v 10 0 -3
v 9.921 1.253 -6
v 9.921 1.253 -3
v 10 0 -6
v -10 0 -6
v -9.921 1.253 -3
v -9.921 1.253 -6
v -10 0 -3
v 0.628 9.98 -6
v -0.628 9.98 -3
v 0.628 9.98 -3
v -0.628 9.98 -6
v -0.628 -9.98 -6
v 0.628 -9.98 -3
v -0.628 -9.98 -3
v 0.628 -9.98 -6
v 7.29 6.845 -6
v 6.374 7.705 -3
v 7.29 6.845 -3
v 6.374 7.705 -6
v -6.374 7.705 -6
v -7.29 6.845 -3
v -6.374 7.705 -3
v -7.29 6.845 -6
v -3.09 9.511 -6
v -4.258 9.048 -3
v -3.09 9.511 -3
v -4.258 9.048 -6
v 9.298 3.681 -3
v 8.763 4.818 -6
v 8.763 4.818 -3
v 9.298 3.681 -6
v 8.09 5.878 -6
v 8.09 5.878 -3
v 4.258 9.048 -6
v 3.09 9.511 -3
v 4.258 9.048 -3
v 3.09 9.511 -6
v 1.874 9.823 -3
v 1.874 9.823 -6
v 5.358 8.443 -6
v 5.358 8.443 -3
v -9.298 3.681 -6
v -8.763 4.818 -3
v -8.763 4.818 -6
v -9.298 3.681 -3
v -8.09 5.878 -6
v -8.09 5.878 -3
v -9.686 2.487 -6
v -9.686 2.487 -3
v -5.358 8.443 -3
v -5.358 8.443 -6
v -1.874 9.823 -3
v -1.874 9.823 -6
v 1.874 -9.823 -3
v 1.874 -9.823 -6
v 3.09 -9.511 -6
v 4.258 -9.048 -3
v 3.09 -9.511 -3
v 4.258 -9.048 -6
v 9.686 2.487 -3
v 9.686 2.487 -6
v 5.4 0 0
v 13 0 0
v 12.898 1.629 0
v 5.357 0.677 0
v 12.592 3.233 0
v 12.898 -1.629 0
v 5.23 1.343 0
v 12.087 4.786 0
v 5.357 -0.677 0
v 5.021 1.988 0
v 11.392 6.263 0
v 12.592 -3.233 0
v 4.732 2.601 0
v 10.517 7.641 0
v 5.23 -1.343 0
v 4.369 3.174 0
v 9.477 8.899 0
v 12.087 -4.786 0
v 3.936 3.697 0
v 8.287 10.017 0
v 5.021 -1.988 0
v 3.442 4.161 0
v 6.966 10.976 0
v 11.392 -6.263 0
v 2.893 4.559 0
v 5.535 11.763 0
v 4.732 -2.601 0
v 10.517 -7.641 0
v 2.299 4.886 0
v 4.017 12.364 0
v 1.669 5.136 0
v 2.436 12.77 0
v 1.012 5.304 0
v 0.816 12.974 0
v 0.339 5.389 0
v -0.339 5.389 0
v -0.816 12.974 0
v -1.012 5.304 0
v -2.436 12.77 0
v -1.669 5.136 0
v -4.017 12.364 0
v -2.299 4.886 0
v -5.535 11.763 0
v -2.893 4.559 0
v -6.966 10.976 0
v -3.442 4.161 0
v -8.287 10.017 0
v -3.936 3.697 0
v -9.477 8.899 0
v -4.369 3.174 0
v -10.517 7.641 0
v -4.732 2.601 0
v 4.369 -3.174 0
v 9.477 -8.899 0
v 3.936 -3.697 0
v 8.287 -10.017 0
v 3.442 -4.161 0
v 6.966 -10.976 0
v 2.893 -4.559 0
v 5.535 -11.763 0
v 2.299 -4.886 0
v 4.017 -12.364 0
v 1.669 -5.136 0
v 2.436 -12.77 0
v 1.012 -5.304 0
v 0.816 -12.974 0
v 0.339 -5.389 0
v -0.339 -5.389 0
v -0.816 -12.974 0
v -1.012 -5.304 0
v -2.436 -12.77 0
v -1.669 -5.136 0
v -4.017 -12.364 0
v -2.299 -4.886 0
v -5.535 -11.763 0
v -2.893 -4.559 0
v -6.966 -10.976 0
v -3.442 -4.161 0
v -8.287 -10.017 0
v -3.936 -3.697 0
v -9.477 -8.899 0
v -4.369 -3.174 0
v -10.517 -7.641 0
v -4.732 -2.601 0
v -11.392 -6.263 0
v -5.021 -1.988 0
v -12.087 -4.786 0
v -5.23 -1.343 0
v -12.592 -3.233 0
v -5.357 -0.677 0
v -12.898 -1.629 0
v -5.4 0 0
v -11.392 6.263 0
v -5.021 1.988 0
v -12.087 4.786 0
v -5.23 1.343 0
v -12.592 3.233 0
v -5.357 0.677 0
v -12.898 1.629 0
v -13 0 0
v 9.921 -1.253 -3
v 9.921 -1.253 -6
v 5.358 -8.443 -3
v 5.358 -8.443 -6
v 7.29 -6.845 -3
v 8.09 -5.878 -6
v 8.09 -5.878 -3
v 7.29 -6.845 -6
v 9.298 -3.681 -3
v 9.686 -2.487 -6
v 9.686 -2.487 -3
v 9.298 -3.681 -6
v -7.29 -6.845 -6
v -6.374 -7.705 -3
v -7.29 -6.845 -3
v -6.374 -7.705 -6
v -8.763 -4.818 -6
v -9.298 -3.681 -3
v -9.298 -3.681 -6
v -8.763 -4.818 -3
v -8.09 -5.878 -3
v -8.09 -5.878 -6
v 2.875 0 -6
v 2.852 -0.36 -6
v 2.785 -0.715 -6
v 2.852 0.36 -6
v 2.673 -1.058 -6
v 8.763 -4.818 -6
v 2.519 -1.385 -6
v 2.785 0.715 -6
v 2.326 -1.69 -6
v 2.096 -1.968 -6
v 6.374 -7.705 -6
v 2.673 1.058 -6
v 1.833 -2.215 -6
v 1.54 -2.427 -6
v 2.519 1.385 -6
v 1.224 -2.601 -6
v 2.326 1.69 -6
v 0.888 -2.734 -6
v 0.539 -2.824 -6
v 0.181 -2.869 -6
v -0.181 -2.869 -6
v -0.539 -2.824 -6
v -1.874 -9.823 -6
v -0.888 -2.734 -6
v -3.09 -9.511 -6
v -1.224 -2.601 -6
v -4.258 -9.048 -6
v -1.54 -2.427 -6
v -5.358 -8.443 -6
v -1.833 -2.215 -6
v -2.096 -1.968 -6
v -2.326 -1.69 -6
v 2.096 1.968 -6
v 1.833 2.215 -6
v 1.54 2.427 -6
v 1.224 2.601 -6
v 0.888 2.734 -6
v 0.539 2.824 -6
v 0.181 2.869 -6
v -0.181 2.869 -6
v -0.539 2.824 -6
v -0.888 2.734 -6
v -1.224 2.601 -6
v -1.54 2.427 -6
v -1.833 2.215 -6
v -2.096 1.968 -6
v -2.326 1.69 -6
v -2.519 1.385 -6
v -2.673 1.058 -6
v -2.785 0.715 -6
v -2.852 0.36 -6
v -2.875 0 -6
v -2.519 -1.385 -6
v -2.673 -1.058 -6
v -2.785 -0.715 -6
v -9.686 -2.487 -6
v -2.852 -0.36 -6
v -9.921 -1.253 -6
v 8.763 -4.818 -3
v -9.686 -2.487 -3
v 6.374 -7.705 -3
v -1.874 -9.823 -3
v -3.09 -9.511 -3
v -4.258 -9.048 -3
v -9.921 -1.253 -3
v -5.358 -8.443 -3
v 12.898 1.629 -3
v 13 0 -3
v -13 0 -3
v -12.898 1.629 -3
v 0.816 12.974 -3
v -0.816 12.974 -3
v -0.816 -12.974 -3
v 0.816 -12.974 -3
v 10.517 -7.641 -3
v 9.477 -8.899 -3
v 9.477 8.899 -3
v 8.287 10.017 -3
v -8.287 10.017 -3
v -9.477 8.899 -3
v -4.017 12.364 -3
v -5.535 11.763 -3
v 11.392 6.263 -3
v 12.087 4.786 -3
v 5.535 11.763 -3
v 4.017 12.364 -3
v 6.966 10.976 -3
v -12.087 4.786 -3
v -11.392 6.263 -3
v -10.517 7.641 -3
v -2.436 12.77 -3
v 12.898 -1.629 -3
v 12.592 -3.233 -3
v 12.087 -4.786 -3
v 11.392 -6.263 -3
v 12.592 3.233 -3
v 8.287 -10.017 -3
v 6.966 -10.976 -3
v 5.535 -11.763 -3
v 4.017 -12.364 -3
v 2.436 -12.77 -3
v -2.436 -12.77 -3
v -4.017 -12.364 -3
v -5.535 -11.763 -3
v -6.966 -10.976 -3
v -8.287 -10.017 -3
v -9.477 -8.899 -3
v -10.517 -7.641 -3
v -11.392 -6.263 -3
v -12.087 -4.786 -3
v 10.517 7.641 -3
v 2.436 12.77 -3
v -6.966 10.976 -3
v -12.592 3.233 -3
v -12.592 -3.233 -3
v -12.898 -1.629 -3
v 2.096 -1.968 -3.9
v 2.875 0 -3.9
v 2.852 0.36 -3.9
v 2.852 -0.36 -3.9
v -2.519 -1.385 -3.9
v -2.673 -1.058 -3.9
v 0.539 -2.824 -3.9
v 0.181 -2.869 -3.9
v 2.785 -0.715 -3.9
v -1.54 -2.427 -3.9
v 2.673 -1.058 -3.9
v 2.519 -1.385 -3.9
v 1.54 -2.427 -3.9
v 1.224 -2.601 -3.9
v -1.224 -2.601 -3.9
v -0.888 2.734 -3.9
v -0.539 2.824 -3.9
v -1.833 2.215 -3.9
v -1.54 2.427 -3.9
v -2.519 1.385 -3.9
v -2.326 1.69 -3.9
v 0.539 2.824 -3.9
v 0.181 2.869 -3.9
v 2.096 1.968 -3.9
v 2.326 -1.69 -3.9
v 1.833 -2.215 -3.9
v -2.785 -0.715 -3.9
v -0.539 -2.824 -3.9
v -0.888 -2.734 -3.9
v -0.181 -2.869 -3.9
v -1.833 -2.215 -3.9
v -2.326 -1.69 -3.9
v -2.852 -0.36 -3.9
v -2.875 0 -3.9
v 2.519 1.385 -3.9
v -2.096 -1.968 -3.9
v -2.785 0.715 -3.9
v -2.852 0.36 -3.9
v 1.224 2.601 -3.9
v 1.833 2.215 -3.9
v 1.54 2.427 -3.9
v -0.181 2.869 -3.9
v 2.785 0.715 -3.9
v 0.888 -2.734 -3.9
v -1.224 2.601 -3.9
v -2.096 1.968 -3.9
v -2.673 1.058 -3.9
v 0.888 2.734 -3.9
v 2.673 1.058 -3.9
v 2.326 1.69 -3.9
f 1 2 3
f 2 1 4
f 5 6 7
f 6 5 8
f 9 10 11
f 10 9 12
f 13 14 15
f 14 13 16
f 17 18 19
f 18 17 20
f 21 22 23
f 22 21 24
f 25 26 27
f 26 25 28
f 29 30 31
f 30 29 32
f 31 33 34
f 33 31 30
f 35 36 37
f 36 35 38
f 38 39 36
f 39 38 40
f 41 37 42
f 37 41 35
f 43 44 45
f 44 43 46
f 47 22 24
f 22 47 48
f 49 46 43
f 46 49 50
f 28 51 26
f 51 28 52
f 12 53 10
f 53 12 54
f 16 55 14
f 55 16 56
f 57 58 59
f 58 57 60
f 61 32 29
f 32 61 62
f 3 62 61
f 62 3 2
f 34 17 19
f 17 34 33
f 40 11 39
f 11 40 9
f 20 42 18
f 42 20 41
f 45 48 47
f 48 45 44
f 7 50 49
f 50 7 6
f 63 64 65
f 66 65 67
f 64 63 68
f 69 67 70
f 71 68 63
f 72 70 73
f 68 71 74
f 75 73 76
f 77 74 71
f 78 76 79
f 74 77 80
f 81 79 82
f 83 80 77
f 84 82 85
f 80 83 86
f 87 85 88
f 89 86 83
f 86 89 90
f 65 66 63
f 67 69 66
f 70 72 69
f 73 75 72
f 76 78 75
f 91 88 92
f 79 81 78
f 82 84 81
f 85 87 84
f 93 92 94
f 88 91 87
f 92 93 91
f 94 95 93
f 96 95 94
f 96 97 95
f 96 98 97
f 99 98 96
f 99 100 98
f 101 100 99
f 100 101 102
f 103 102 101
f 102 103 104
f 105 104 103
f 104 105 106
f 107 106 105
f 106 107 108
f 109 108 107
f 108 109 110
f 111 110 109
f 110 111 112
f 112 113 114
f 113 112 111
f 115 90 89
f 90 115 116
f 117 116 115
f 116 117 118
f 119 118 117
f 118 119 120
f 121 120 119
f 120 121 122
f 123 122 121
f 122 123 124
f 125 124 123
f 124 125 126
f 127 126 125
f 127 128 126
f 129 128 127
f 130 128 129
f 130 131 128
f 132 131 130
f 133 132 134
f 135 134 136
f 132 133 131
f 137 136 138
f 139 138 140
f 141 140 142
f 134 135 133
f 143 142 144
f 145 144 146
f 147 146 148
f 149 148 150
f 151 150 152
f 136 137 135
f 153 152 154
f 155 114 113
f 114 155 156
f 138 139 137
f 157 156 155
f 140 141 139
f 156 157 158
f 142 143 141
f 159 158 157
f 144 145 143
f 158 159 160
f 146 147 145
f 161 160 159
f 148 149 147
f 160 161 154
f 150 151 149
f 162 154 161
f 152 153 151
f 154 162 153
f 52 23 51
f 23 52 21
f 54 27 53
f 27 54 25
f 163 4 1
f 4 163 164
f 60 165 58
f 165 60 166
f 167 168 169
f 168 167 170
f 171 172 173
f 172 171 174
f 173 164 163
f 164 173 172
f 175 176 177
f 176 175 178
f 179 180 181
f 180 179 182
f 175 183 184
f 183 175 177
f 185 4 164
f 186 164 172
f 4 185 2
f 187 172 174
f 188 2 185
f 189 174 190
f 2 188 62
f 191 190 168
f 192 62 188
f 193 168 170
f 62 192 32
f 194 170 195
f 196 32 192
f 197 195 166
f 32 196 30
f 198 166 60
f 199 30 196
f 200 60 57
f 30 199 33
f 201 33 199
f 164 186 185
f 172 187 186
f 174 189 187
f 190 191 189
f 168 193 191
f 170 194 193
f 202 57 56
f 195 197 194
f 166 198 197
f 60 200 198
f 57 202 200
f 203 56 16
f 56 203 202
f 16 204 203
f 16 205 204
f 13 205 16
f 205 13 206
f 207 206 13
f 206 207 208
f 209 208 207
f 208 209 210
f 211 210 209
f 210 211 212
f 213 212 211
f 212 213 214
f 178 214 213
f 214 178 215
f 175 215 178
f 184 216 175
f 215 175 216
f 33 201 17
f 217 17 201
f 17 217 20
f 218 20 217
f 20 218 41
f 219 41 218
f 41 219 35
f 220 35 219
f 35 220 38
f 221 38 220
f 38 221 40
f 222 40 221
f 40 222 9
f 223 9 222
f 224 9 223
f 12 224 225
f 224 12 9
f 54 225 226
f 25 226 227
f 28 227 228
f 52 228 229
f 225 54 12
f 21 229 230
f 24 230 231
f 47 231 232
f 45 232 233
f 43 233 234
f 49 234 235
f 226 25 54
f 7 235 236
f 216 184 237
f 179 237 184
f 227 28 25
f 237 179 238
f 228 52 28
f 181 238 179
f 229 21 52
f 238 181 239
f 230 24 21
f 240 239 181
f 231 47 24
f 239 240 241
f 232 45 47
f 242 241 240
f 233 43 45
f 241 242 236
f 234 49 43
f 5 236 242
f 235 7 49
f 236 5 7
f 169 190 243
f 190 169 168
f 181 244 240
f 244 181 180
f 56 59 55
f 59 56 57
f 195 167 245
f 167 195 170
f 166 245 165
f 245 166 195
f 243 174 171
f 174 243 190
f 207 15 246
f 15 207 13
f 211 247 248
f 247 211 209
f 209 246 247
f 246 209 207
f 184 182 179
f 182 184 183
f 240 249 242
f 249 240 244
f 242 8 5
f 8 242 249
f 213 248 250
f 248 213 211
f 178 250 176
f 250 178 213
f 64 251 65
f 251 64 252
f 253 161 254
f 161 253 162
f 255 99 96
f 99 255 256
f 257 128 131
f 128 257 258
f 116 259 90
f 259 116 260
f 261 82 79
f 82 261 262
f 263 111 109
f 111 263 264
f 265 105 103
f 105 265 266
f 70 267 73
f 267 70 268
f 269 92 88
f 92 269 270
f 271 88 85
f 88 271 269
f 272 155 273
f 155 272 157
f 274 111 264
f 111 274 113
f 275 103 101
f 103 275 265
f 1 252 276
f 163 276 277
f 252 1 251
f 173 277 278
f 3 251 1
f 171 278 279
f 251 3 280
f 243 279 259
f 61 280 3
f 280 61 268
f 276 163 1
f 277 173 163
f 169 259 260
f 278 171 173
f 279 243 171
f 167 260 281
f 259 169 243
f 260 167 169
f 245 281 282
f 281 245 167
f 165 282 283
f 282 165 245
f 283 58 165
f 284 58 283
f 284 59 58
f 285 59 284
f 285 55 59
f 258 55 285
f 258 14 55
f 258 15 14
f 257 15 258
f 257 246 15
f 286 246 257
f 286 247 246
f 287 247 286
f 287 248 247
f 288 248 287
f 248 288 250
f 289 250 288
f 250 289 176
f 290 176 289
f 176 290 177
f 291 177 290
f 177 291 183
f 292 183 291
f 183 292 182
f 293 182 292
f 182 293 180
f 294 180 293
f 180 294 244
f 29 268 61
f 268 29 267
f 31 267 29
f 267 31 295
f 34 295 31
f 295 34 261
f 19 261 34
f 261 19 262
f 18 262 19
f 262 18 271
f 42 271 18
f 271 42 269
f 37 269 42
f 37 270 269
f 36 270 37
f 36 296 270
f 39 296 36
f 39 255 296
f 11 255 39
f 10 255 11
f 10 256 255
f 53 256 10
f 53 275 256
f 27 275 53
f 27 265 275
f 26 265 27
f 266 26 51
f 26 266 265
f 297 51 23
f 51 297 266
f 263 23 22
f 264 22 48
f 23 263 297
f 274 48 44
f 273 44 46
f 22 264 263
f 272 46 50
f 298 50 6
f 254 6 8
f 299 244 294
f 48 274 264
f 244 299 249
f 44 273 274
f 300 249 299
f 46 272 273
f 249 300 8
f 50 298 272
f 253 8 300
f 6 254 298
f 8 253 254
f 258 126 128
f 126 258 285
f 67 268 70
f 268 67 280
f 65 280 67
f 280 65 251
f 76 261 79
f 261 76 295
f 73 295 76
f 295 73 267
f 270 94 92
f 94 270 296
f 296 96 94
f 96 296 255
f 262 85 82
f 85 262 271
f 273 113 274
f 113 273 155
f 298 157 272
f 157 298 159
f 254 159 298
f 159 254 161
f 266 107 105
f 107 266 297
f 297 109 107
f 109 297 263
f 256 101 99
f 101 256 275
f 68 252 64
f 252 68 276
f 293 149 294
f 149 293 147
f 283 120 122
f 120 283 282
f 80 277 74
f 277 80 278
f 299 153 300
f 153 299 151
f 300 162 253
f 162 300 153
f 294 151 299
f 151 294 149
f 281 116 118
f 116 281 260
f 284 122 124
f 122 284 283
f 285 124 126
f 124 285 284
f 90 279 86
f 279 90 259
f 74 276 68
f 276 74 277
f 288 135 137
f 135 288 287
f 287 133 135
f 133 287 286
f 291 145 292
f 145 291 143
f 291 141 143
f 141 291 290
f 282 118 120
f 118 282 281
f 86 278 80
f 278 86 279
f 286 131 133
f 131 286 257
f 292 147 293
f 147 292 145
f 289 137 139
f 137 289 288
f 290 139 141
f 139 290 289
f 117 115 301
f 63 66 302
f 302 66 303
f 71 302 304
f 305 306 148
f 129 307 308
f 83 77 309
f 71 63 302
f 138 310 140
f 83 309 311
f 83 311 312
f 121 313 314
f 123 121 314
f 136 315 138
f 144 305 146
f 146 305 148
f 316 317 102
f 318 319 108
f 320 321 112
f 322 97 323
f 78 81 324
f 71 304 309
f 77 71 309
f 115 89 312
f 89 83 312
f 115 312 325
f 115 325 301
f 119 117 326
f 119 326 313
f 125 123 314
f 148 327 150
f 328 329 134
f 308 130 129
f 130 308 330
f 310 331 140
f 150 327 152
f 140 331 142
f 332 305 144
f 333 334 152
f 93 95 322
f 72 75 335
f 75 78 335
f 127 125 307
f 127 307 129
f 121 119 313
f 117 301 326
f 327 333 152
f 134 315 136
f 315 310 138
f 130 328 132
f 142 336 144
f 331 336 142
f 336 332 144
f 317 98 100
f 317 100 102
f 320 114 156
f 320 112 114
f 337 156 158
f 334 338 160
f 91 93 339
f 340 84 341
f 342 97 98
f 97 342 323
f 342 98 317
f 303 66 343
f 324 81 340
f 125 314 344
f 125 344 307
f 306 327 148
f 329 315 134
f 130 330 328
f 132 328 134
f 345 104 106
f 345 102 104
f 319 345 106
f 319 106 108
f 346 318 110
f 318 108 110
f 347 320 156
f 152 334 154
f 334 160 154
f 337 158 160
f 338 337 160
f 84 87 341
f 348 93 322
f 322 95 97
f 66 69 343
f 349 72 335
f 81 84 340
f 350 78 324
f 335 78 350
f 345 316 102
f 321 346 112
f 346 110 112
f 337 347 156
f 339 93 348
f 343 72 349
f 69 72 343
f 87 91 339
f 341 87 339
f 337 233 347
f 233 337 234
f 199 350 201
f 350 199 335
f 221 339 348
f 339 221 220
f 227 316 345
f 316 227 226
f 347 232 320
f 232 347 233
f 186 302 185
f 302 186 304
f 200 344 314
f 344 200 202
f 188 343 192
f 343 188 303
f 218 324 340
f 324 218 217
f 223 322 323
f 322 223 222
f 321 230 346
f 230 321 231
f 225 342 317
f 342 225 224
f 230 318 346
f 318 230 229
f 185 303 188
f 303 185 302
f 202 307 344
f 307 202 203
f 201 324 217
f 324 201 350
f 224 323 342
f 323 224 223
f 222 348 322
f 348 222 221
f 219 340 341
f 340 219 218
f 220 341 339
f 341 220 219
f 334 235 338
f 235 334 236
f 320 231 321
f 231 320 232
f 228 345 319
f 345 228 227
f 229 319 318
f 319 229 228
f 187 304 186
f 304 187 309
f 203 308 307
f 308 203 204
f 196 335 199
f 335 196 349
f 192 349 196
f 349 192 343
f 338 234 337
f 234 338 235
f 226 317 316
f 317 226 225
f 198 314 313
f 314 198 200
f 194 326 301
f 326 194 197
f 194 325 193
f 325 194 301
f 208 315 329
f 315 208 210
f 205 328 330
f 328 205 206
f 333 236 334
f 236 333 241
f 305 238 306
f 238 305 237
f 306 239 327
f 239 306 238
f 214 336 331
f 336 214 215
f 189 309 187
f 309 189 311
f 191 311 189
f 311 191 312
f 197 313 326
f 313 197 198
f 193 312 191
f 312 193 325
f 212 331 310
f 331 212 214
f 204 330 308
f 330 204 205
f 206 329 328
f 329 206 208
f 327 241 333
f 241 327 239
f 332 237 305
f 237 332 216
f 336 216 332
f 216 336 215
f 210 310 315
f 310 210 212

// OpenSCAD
$fn = 50;


difference() {
	union() {
		translate(v = [0, 0, -6.0000000000]) {
			cylinder(h = 6, r = 10.0000000000);
		}
		translate(v = [0, 0, -3.0000000000]) {
			cylinder(h = 3, r = 13.0000000000);
		}
	}
	union() {
		translate(v = [0, 0, 0]) {
			rotate(a = [0, 0, 0]) {
				difference() {
					union() {
						#translate(v = [0, 0, -6.0000000000]) {
							cylinder(h = 6, r = 2.6000000000);
						}
						#translate(v = [0, 0, -3.9000000000]) {
							cylinder(h = 3.9000000000, r = 10.0000000000, r1 = 2.8750000000, r2 = 5.4000000000);
						}
						#translate(v = [0, 0, -6.0000000000]) {
							cylinder(h = 6, r = 2.8750000000);
						}
						#translate(v = [0, 0, -6.0000000000]) {
							cylinder(h = 6, r = 2.6000000000);
						}
					}
					union();
				}
			}
		}
	}
}
